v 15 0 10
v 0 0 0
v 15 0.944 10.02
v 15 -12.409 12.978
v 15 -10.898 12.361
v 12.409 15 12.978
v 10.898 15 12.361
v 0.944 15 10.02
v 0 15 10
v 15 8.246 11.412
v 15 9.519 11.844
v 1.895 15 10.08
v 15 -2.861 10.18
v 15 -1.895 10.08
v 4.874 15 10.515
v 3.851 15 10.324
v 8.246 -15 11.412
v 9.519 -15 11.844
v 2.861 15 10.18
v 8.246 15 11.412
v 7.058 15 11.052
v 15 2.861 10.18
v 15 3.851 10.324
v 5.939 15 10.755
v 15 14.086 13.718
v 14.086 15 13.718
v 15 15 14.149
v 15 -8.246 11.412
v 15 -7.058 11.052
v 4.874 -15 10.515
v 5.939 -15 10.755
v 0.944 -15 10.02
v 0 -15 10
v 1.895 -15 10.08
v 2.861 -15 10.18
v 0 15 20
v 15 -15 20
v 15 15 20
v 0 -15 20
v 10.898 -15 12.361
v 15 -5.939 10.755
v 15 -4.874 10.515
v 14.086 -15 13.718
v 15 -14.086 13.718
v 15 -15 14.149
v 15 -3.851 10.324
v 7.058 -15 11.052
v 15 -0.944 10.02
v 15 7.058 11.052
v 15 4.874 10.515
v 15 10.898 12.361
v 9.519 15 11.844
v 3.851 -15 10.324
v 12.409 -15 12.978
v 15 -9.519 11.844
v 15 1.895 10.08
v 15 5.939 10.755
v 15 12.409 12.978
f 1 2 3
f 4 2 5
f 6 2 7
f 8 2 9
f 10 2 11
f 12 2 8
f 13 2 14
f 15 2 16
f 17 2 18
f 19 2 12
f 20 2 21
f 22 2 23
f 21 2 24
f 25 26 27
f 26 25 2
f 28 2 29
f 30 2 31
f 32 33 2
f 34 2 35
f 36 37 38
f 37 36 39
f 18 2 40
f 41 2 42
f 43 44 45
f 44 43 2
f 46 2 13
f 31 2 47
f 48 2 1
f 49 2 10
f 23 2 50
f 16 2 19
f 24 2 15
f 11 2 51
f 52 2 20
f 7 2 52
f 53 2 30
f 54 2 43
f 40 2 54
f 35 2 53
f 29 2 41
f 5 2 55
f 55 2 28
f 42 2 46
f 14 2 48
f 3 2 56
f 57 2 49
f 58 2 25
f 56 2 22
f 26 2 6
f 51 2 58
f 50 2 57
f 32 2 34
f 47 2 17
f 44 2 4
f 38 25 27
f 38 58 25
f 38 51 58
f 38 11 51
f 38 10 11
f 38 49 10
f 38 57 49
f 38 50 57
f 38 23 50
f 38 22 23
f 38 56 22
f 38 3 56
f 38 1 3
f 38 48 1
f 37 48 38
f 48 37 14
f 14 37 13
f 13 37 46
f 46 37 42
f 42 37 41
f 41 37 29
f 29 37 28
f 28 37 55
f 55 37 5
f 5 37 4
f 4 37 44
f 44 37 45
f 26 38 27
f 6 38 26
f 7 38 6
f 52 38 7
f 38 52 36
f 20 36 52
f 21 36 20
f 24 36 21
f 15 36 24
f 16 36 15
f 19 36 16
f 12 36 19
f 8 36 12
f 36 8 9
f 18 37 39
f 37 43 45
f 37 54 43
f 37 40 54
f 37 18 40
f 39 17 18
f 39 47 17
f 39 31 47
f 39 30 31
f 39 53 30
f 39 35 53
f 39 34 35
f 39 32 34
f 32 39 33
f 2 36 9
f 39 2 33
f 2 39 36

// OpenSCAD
// Define the overall dimensions
module curved_shape() {
    difference() {
        intersection() {
            // Cylinder to create the curved shape
            cylinder(h = 20, r1 = 0, r2 = 30, $fn = 100);
            // Box to create the triangular cross-section
            translate([-15, -15, 0])
            cube([30, 30, 20]);
        }
        // Cutting away excess using a box
        translate([-15, -15, 0])
        cube([15, 30, 20]);
    }
}

// Render the shape
curved_shape();
